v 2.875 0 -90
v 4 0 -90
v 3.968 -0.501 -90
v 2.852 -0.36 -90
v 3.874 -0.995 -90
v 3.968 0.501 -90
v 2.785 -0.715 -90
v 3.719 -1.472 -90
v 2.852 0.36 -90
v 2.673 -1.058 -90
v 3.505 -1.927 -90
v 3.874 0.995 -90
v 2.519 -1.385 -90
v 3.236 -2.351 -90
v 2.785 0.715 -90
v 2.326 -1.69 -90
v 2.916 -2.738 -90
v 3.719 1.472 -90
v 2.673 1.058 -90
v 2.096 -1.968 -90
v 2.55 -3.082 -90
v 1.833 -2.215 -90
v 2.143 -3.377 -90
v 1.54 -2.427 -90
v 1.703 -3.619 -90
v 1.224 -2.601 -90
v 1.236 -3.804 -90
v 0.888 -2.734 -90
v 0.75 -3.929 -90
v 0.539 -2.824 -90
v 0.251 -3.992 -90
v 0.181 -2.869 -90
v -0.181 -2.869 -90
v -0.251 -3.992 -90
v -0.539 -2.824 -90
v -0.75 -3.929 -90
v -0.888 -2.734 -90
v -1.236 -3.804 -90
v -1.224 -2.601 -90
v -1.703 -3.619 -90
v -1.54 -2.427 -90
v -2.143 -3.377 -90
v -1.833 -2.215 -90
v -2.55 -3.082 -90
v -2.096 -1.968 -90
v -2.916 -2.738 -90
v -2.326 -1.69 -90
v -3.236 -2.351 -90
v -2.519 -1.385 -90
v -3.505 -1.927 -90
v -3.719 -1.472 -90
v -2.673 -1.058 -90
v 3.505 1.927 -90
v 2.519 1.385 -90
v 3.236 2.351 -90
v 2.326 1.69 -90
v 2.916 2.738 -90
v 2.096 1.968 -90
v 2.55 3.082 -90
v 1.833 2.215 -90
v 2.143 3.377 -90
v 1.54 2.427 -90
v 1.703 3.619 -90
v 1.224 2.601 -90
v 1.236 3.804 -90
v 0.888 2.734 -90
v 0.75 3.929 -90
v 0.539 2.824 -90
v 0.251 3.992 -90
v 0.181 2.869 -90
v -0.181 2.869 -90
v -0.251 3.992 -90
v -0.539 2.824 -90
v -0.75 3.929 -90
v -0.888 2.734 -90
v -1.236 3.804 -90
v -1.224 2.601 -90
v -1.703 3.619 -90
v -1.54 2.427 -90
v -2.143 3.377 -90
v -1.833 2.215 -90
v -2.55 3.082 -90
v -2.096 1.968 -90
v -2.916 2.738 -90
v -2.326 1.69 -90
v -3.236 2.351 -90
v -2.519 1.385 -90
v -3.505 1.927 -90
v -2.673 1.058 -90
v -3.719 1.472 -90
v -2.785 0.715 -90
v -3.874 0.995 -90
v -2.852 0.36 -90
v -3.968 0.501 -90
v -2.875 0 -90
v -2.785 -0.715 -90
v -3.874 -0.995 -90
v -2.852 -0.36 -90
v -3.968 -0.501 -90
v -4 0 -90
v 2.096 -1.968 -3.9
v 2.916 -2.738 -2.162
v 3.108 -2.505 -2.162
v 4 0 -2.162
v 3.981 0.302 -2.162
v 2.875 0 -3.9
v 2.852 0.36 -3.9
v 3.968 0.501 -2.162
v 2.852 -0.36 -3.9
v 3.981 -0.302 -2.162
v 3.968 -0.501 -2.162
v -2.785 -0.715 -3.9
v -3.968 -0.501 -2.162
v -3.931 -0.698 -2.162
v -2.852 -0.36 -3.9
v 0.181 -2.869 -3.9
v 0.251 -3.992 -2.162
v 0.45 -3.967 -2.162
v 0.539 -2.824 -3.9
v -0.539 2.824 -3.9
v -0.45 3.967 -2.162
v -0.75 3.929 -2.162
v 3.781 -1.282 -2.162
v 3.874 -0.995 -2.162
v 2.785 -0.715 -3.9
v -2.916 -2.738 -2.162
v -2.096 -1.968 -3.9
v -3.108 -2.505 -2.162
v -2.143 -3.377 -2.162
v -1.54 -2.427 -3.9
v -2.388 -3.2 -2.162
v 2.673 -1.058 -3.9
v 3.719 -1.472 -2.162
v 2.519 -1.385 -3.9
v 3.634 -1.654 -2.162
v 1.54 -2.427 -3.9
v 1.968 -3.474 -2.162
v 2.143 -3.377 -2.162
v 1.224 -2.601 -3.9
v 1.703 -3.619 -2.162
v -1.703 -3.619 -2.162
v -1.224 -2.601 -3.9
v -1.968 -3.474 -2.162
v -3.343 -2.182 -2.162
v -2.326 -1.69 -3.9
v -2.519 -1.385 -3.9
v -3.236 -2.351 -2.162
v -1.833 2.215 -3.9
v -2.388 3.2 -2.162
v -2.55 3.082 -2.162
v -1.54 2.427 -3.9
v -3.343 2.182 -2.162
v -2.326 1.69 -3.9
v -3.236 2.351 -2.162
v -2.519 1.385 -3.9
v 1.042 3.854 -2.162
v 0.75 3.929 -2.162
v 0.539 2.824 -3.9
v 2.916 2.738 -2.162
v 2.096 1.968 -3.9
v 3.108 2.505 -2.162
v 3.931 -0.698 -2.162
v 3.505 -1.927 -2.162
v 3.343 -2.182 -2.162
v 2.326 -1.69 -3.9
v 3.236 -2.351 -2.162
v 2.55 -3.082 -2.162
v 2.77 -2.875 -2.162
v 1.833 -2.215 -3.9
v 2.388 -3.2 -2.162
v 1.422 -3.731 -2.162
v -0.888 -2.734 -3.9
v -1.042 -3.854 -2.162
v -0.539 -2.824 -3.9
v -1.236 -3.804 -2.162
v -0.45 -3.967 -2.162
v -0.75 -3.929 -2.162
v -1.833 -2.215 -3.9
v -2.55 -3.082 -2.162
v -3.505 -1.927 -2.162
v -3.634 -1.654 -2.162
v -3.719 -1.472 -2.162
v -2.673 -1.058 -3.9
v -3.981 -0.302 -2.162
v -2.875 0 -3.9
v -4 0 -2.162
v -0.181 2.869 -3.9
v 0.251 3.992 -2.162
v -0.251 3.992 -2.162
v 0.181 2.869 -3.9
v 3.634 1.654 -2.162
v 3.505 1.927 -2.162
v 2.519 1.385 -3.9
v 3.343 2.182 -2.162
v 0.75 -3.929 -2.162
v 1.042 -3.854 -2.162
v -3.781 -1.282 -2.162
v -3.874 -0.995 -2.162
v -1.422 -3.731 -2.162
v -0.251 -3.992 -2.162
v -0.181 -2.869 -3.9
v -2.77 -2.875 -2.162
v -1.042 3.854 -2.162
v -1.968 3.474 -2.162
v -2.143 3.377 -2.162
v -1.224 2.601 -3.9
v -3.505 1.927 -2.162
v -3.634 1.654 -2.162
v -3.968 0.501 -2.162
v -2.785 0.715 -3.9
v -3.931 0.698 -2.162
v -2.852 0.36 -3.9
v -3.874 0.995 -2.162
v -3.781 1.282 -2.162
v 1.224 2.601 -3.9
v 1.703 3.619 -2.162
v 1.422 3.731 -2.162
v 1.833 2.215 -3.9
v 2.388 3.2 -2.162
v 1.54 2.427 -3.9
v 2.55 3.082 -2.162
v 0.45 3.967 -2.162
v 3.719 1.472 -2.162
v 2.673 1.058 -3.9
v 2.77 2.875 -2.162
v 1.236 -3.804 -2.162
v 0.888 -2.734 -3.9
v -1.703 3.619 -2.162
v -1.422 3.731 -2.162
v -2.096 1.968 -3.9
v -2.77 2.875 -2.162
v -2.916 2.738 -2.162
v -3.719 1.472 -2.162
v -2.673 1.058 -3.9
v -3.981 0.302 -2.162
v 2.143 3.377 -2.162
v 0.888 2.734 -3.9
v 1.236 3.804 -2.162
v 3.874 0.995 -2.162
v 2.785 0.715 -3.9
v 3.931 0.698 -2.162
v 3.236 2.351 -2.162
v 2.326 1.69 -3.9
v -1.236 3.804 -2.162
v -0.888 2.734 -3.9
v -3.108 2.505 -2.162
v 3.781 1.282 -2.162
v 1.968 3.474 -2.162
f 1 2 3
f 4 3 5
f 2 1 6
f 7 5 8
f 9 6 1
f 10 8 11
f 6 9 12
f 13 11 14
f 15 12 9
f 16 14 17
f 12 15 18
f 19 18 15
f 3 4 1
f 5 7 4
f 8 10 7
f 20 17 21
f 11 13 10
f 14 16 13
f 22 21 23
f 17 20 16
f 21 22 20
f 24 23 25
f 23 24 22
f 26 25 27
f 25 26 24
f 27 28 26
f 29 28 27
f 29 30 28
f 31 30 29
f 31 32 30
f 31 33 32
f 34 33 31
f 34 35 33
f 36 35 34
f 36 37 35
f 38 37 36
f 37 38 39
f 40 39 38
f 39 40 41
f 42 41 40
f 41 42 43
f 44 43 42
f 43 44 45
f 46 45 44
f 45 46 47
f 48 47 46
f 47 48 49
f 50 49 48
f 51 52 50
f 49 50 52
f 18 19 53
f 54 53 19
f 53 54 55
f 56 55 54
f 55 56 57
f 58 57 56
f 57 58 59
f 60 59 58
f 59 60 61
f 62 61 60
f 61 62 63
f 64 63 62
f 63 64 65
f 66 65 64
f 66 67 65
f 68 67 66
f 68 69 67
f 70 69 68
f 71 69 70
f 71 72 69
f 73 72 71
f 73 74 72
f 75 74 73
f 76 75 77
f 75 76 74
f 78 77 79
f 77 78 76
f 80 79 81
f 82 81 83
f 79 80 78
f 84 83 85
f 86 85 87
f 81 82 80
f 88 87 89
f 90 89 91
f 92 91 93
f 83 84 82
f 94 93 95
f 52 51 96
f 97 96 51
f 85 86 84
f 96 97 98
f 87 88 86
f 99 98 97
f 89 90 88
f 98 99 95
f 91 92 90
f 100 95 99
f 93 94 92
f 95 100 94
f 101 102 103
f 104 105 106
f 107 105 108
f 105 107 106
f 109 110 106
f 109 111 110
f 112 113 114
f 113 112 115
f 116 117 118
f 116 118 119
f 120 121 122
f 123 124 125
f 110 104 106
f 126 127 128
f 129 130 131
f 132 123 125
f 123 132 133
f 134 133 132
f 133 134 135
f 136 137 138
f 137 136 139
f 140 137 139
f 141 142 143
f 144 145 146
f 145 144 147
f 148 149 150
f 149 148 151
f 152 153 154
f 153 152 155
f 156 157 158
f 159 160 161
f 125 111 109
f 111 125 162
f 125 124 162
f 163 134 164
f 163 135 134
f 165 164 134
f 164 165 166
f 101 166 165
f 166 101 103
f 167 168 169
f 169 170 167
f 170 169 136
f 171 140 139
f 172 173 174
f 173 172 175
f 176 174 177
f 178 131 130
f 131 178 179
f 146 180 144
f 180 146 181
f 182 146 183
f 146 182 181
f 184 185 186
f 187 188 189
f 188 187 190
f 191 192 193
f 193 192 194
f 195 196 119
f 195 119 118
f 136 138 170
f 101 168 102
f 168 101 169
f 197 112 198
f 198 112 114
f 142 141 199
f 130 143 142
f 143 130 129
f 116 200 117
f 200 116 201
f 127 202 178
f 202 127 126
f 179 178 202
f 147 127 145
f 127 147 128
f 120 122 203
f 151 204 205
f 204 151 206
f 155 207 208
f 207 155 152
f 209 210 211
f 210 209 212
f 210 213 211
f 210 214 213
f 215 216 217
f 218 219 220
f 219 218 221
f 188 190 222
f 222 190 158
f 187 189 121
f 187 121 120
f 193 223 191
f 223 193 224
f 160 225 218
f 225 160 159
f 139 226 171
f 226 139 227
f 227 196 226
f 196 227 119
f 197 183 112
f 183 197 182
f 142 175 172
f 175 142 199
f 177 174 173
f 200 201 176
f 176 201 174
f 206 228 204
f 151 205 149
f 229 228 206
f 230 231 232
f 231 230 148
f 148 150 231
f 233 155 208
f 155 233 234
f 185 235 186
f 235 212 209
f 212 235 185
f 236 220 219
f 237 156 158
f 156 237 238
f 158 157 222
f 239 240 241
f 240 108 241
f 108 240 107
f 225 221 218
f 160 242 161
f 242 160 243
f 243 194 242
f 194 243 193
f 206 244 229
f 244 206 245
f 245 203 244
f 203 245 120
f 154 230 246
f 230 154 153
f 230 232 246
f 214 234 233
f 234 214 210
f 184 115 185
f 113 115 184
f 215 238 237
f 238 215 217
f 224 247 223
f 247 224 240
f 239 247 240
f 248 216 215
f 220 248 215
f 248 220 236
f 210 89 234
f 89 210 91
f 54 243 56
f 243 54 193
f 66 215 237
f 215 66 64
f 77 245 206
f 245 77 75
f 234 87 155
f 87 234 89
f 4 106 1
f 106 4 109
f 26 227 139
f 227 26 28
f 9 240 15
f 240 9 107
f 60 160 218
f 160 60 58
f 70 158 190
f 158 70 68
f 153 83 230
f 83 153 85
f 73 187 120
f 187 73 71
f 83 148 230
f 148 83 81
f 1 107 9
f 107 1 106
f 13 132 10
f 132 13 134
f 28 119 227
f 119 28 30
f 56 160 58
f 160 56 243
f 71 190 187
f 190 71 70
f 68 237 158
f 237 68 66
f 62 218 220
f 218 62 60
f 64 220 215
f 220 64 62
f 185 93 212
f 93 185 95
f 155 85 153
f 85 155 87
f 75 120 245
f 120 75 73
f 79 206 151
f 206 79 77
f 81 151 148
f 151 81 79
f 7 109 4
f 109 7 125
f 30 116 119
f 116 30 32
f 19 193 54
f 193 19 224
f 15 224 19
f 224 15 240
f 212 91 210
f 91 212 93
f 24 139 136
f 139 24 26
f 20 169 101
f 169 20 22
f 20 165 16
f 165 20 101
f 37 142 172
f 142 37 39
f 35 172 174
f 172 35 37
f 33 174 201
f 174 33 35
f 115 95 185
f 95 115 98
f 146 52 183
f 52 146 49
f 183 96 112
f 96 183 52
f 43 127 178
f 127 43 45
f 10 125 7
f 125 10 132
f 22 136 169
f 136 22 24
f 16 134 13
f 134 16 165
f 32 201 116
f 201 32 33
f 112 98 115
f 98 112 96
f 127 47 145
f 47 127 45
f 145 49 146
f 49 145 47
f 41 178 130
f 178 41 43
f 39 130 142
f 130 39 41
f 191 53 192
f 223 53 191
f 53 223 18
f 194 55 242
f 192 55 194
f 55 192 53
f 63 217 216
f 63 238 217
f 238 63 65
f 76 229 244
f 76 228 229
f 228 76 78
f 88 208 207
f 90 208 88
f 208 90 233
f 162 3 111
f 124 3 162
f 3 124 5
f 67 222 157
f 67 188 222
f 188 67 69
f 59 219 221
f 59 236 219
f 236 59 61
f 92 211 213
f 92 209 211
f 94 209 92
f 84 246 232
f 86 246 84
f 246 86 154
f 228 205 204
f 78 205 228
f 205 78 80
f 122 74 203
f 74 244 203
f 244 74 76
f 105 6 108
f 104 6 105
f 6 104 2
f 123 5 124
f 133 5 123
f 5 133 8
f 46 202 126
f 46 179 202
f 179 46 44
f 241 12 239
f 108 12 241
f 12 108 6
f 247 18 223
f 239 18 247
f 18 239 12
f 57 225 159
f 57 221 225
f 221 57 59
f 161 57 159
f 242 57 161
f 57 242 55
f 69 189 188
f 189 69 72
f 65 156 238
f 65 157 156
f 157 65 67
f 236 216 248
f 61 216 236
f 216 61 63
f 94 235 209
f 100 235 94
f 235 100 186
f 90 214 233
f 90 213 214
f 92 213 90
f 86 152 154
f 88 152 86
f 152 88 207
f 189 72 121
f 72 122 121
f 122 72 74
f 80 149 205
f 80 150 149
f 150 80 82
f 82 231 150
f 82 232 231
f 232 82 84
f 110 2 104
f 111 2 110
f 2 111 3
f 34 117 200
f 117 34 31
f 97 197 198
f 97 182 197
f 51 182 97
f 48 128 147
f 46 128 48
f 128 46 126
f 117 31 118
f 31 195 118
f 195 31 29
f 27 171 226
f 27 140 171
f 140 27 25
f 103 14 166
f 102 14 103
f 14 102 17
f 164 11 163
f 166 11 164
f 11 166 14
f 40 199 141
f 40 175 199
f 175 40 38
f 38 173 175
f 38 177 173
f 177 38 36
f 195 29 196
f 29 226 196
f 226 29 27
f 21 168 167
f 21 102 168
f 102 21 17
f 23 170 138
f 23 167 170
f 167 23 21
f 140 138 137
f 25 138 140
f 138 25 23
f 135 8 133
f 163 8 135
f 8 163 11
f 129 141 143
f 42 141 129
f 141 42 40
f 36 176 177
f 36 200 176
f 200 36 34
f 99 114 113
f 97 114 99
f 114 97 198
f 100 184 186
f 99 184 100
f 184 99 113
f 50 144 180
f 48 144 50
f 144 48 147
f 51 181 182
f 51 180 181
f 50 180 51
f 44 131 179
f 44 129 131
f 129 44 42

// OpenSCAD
$fn = 50;


difference() {
	union() {
		translate(v = [0, 0, -90.0000000000]) {
			cylinder(h = 90, r = 4.0000000000);
		}
		cylinder(h = 0, r = 7.0000000000);
	}
	union() {
		translate(v = [0, 0, 0]) {
			rotate(a = [0, 0, 0]) {
				difference() {
					union() {
						#translate(v = [0, 0, -90.0000000000]) {
							cylinder(h = 90, r = 2.6000000000);
						}
						#translate(v = [0, 0, -3.9000000000]) {
							cylinder(h = 3.9000000000, r = 4.0000000000, r1 = 2.8750000000, r2 = 5.4000000000);
						}
						#translate(v = [0, 0, -90.0000000000]) {
							cylinder(h = 90, r = 2.8750000000);
						}
						#translate(v = [0, 0, -90.0000000000]) {
							cylinder(h = 90, r = 2.6000000000);
						}
					}
					union();
				}
			}
		}
	}
}
